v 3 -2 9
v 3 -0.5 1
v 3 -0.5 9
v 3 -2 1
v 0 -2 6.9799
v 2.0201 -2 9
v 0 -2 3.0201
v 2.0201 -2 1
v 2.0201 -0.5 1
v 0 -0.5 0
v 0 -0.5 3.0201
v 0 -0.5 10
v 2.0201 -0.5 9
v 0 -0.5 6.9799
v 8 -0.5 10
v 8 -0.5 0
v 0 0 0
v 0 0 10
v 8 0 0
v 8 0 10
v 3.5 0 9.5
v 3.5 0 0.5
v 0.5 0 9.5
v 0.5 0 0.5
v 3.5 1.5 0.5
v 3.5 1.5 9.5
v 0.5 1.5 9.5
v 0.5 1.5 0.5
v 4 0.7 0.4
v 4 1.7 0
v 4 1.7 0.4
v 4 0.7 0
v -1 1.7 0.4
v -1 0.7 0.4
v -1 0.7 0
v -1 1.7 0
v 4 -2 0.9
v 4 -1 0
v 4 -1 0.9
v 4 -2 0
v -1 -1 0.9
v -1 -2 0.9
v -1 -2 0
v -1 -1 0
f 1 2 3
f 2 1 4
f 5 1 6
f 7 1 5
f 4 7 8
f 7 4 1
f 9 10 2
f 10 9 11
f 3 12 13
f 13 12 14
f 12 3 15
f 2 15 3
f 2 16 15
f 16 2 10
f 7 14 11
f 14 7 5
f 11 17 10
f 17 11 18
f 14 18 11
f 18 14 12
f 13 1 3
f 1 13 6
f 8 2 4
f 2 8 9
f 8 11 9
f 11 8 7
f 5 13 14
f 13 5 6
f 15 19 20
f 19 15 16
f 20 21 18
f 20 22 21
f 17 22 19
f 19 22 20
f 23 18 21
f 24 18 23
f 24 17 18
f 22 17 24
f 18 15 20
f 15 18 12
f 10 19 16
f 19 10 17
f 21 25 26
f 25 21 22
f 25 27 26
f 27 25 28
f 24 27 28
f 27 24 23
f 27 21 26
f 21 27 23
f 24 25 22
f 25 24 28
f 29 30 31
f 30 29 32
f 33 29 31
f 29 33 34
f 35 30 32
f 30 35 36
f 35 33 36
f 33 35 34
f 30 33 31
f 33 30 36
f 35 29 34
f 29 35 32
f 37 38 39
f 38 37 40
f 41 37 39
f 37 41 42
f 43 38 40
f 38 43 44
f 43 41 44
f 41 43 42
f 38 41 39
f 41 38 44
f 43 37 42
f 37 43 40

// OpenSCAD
WIDTH          = 10;
LENGTH         = 10 -2;
THICKNESS      =  0.5;

TAB_LENGTH     = 3;
TAB_WIDTH      = 8;
TAB_THICKNESS  = 1 +.5;

KNOB_LENGTH    = 3;
KNOB_WIDTH     = 9;
KNOB_THICKNESS = 1.5;
KNOB_XPOS      = .5;

ATOM           = 0.01;

module latch() {
    cube([LENGTH, WIDTH, THICKNESS]);

    intersection() {
        translate([0, (WIDTH-TAB_WIDTH)/2, THICKNESS])
        cube([TAB_LENGTH, TAB_WIDTH, TAB_THICKNESS]);

        translate([sqrt(TAB_WIDTH)*1.3, (WIDTH-TAB_WIDTH)/2 + TAB_WIDTH/2, 0])
        translate([0, 0, THICKNESS+TAB_THICKNESS/2])
        rotate([0, 0, 45])
        cube([TAB_WIDTH, TAB_WIDTH, TAB_THICKNESS+ATOM], center=true);
        
    }

    translate([KNOB_XPOS, (WIDTH-KNOB_WIDTH)/2, -KNOB_THICKNESS])
    cube([KNOB_LENGTH, KNOB_WIDTH, KNOB_THICKNESS]);
}

rotate([90, 0, 0])
latch();

// supports
translate([-1, .7, 0]) cube([5, 1, .4]);
translate([-1, -2, 0]) cube([5, 1, .4+.5]);
